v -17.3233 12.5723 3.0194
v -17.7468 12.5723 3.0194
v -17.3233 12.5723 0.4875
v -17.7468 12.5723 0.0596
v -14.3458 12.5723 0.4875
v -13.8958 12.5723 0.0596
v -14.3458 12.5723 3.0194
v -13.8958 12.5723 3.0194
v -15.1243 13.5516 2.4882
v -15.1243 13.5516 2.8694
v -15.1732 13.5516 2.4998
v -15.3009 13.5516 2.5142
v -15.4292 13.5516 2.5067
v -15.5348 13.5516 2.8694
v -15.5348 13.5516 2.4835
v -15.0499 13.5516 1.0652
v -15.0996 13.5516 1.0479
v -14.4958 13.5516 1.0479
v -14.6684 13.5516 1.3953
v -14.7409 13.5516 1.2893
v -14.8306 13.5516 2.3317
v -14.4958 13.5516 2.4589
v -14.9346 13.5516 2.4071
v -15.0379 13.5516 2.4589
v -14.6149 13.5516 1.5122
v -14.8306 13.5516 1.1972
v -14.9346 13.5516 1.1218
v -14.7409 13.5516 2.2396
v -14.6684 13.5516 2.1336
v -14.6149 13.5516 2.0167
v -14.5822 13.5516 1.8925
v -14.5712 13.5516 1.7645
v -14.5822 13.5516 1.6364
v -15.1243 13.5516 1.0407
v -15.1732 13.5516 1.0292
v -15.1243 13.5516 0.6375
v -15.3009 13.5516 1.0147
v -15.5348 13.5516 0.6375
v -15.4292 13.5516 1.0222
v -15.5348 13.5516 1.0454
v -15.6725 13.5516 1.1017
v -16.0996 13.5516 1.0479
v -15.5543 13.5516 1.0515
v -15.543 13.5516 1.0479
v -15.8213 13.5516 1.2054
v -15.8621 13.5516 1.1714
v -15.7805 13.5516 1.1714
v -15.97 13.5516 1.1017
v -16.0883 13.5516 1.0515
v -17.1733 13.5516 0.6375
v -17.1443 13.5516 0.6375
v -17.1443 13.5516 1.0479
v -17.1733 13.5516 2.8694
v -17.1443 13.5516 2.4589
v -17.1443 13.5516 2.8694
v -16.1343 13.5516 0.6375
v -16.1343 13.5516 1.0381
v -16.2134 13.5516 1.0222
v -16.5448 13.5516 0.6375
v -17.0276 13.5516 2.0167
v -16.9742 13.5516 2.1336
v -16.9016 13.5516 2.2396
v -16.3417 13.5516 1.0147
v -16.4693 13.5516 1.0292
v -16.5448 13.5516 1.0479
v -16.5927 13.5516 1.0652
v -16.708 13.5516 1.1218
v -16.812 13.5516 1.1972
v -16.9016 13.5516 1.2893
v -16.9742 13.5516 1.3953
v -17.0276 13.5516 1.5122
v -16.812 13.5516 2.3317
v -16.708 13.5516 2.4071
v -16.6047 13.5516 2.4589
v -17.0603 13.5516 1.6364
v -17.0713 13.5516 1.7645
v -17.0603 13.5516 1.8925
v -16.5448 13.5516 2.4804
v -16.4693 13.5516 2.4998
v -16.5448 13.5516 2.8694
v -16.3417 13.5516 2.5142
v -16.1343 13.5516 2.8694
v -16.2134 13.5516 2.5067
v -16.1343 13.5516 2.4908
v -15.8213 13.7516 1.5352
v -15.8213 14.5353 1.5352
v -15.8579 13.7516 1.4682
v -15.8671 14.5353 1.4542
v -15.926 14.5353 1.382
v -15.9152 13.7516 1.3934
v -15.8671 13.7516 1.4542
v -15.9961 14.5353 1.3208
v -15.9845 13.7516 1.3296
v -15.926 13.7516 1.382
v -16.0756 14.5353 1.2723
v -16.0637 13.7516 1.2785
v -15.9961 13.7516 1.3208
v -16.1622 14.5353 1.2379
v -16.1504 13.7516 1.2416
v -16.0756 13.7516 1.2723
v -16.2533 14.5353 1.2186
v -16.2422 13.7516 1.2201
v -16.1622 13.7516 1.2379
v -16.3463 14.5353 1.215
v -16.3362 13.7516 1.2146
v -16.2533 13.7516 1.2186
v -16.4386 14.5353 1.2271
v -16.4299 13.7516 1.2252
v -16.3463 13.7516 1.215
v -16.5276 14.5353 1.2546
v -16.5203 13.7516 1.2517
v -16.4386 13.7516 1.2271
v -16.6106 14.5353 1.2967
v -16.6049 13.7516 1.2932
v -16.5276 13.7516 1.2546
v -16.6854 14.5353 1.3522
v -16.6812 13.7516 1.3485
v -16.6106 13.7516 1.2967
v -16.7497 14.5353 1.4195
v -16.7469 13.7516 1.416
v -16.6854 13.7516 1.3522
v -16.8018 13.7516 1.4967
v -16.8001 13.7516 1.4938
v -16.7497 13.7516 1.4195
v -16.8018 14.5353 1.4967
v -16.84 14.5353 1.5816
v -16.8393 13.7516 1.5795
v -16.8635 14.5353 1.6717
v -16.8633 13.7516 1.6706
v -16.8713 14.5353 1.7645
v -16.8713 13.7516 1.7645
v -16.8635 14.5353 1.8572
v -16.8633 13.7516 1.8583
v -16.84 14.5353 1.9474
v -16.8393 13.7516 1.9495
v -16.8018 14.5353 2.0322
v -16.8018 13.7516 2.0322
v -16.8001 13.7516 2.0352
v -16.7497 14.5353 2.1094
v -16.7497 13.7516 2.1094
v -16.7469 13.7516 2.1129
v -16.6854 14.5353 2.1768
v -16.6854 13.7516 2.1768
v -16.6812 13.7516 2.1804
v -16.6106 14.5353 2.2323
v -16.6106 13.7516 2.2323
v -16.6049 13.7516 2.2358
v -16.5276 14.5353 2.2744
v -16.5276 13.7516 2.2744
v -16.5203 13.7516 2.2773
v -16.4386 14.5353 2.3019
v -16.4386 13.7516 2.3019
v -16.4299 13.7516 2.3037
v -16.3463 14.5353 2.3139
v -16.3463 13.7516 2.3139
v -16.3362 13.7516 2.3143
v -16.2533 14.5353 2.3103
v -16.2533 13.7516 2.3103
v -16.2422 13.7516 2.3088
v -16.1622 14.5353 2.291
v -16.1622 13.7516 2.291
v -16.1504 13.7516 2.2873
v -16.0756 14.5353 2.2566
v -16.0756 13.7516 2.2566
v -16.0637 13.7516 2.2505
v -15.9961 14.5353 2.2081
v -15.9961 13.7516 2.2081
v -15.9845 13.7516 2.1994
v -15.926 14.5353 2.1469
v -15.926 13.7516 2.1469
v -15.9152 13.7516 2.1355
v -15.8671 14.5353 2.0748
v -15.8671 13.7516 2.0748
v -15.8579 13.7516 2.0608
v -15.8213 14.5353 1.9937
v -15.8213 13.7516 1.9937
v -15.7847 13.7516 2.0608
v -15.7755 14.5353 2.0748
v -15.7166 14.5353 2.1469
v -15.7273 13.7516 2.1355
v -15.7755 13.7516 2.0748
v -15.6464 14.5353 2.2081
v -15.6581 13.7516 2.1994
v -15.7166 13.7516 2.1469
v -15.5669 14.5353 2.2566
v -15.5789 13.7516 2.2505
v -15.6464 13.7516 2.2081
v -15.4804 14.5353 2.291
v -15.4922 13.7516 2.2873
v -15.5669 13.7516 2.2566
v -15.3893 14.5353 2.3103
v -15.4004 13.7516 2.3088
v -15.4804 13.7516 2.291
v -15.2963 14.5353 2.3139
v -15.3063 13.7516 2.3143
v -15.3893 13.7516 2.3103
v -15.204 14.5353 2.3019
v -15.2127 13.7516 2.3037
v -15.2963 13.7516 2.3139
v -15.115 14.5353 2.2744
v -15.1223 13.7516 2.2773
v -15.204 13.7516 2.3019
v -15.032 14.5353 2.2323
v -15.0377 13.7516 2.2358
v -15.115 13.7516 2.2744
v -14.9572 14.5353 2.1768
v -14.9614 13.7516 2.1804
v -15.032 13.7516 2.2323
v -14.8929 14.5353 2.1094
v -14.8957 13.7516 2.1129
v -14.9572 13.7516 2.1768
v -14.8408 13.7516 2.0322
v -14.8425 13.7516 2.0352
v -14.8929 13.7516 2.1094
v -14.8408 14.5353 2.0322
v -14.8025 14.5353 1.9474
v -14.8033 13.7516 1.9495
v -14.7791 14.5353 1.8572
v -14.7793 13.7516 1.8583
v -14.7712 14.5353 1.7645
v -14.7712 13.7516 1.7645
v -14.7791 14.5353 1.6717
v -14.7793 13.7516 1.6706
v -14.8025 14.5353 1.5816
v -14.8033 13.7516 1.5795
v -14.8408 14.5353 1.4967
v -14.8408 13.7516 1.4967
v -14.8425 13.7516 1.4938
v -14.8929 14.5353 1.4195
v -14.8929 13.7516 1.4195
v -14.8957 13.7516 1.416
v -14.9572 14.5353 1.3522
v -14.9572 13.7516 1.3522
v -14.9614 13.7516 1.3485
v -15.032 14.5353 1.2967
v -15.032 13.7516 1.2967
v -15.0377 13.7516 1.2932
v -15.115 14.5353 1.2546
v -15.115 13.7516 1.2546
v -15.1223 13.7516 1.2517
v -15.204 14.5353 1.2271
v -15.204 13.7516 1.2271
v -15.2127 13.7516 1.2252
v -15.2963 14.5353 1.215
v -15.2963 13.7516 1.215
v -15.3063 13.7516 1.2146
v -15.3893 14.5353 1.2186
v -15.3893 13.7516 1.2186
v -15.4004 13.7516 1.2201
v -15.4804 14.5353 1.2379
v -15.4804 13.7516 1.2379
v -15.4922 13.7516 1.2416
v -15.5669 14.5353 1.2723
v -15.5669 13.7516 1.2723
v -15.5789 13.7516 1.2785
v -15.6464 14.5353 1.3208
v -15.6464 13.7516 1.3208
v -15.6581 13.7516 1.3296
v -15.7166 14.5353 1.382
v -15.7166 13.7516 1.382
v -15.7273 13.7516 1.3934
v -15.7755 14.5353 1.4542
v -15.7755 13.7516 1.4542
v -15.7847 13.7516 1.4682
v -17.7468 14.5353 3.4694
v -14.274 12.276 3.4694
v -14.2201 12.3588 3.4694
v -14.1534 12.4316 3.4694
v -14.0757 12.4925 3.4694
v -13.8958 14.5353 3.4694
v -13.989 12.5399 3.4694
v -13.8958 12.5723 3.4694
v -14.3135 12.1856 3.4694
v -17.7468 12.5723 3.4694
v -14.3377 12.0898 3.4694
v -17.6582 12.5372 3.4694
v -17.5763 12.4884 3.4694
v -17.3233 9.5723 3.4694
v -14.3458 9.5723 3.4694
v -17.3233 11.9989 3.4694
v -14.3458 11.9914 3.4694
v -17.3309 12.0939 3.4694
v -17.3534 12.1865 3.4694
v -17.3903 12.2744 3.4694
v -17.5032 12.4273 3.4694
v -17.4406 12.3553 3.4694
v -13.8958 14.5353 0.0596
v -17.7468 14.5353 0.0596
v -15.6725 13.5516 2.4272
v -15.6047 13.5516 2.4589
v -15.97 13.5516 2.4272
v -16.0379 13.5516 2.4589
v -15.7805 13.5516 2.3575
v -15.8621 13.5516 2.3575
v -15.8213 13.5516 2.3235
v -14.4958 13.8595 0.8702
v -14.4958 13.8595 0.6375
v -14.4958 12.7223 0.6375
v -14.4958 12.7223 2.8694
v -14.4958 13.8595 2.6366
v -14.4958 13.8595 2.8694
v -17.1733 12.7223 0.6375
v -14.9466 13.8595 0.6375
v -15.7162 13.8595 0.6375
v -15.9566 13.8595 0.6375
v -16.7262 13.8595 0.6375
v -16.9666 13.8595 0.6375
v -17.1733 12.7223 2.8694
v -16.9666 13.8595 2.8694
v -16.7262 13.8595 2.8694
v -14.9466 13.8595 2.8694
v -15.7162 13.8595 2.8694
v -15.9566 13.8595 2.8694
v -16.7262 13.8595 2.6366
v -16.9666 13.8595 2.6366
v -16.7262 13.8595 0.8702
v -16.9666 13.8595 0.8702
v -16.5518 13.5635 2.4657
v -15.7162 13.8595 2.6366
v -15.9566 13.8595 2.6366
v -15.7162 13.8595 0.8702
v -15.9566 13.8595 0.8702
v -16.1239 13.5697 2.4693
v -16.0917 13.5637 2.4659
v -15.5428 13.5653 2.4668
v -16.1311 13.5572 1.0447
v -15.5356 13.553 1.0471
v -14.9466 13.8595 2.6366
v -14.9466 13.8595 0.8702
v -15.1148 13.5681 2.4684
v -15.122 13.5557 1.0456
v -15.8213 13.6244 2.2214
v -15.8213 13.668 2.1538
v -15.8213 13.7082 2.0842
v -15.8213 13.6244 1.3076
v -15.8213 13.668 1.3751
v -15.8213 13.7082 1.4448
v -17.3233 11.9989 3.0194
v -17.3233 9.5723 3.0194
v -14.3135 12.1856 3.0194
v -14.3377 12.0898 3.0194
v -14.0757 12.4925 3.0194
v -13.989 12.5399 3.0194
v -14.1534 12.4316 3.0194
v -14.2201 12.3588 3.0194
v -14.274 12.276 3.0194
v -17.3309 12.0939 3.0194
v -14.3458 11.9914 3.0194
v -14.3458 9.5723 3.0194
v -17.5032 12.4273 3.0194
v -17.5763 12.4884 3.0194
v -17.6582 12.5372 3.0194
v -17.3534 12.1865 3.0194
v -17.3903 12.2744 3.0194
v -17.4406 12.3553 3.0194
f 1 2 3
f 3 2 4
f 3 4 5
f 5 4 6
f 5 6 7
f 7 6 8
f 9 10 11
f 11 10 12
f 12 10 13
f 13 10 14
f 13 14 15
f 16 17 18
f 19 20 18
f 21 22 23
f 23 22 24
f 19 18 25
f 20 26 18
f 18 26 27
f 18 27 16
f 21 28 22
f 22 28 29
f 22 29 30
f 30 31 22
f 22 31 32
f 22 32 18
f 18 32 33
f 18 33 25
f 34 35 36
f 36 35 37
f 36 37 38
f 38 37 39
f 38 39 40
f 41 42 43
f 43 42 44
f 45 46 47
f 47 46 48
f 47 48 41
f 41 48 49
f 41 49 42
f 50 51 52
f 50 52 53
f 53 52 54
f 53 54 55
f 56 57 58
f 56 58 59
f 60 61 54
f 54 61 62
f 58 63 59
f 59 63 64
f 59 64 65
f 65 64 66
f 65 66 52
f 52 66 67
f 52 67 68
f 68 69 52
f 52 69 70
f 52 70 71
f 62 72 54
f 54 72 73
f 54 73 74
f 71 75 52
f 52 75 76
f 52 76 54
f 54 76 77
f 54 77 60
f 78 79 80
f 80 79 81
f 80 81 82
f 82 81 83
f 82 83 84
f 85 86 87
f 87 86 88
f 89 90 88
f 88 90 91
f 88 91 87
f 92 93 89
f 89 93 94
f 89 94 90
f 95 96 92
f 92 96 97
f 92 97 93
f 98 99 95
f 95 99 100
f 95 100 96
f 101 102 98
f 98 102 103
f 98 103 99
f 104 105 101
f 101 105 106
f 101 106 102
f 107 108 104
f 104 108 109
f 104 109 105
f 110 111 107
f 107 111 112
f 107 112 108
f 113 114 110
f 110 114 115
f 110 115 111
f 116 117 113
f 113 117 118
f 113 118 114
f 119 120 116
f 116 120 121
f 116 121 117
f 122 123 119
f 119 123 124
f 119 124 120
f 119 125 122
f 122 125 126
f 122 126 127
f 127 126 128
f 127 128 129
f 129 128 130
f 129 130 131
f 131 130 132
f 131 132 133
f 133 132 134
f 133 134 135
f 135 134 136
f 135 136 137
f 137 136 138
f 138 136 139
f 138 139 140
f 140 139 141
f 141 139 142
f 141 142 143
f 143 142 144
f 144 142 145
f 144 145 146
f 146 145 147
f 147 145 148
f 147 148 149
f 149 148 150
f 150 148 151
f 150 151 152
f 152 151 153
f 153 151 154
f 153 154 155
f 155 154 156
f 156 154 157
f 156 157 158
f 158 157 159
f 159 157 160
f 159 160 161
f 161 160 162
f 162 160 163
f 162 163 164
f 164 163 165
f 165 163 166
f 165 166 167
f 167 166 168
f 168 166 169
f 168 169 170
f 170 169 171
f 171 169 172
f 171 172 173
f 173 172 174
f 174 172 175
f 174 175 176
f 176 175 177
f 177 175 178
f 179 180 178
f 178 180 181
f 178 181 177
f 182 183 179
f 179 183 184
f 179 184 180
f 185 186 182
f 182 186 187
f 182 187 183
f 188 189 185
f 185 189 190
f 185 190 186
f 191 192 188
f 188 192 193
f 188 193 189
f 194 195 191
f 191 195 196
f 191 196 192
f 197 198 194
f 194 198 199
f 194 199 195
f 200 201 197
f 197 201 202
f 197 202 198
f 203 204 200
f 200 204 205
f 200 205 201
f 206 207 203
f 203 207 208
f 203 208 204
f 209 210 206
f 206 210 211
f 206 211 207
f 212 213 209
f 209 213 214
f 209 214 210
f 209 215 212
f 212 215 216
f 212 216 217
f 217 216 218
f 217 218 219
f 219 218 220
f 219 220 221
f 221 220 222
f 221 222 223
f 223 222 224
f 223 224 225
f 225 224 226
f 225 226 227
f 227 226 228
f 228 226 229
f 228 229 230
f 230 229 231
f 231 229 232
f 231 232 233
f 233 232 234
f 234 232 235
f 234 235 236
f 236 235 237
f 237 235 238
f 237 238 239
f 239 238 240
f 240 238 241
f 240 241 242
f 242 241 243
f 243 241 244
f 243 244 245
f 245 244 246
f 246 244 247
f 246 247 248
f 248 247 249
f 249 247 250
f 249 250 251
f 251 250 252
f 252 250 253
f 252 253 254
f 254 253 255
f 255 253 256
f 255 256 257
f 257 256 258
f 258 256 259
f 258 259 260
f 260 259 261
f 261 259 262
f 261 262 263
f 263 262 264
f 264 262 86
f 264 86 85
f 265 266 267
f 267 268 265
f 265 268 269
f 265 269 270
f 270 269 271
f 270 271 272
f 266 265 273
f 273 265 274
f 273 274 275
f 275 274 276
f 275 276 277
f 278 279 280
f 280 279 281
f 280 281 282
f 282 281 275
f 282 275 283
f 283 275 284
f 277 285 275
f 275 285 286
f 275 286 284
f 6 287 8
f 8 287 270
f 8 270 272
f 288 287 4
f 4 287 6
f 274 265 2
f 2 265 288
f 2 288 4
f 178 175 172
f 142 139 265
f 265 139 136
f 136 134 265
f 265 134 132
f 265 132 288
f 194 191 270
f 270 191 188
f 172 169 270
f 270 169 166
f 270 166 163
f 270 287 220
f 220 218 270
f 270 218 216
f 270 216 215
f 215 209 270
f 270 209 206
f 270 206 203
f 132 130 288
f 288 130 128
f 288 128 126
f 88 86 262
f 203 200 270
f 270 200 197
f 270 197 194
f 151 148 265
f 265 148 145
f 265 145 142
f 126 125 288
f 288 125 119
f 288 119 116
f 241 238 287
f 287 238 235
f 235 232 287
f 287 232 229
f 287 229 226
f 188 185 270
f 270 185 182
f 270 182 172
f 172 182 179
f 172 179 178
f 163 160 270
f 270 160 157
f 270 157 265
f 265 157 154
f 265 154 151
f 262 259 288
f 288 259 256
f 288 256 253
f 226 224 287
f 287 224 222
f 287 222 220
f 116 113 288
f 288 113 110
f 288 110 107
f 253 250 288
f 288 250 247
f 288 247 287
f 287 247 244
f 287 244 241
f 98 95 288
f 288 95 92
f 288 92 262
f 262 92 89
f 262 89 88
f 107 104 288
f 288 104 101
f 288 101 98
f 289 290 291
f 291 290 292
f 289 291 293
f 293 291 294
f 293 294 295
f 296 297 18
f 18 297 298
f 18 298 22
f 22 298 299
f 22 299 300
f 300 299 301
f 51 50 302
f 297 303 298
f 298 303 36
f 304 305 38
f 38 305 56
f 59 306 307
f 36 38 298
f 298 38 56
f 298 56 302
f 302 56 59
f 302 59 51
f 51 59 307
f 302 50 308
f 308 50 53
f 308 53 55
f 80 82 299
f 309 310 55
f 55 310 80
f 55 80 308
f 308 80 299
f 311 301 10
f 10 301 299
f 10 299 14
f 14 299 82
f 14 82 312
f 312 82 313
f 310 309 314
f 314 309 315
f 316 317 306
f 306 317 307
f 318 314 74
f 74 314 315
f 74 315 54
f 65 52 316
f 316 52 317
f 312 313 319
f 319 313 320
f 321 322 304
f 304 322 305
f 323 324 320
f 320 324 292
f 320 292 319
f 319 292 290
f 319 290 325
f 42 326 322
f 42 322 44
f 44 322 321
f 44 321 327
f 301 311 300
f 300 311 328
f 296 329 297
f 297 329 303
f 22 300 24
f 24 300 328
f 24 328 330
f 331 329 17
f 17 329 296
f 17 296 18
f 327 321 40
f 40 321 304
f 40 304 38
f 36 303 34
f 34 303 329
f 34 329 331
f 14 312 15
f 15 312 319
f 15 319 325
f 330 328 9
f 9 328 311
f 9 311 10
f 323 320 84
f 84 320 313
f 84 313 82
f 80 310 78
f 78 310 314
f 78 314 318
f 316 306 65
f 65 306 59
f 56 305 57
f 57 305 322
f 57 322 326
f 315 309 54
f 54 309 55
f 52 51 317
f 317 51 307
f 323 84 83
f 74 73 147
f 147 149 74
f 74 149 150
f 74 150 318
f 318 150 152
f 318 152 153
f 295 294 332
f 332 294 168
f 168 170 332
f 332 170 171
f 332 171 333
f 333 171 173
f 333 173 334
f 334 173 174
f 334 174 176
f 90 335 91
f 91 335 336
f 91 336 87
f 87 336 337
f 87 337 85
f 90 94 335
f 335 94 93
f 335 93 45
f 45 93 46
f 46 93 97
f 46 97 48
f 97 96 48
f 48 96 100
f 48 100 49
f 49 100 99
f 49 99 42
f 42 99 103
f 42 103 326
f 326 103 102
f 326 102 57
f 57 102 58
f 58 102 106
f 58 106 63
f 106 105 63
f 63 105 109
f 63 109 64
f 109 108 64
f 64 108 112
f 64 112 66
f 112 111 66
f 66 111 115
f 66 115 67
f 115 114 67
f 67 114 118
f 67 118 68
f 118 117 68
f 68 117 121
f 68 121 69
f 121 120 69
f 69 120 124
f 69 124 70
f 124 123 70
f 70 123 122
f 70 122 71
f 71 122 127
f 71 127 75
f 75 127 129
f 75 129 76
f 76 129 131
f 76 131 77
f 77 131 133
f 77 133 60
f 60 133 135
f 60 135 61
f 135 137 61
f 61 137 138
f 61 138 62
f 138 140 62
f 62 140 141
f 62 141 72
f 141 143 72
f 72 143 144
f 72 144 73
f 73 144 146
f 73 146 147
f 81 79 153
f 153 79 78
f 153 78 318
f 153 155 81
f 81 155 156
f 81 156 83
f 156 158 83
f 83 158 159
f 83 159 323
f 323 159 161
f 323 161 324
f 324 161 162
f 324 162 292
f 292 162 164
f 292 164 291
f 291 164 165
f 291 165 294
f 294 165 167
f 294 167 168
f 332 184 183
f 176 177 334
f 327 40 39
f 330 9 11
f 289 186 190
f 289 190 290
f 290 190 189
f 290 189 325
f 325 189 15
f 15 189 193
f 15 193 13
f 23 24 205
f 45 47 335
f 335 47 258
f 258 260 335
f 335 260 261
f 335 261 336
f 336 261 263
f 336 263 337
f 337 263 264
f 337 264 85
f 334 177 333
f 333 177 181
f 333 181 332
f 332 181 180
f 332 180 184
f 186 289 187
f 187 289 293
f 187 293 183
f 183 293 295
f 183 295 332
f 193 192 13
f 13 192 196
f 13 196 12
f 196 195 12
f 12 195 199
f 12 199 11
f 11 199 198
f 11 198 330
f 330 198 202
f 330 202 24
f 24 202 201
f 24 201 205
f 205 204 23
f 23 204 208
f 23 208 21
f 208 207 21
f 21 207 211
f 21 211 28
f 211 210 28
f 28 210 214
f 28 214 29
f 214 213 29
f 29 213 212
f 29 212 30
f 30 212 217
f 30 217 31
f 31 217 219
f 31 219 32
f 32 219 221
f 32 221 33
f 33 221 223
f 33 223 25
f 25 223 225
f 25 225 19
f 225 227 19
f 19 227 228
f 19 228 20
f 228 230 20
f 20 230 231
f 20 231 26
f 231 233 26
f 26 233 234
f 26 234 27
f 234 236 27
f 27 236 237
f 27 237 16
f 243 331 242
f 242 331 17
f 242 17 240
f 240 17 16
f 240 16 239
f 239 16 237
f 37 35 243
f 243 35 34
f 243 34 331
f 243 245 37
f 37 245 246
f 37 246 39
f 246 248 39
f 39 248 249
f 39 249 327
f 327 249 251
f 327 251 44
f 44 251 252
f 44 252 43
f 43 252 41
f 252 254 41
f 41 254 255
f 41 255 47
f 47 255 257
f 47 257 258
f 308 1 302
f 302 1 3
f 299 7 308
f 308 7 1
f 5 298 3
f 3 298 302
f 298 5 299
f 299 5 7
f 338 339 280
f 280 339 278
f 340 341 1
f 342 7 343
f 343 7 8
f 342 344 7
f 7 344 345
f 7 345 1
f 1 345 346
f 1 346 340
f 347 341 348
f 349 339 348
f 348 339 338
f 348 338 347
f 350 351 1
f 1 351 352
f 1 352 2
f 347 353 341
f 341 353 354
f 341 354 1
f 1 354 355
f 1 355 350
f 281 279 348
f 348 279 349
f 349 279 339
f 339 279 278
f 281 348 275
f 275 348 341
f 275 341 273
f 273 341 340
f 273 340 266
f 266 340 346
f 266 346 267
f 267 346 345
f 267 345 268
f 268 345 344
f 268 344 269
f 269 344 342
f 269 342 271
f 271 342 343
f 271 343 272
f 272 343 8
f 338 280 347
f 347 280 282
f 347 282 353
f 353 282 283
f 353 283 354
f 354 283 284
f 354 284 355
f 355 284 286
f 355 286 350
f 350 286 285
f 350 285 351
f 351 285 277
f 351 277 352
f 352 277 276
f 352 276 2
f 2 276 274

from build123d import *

# Parameters (mm, degrees)
BOSS_EXTRUDE1_DEPTH      = 0.7
BOSS_EXTRUDE1_DEPTH_BACK = 1.263
SKETCH1_W                = 3.850998
SKETCH1_H                = 3.4098
CAVITY1_START            = 0.637466597
CAVITY1_OUTLINE_W        = 2.67750798
CAVITY1_OUTLINE_H        = 0.979282
CAVITY1_DEPTH            = 2.231898
CAVITY1_2_DEPTH          = 0.410464
CAVITY1_START_2          = 2.458900597
CAVITY1_3_DEPTH          = 0.410464
CAVITY1_START_3          = -17.14430724
CAVITY1_4_DEPTH          = 2.648519043
CHAMFER1_SIZE            = 0.2
CHAMFER2_SIZE            = 0.15
SKETCH2_W                = 2.97750798
SKETCH2_H                = 0.45
BOSS_EXTRUDE2_DEPTH      = 3
FILLET1_R                = 0.6


with BuildPart() as part:
    # Sketch1 → Boss-Extrude1 (new, two sides: drawn at the far end of the back side and taken through both)
    with BuildSketch(Plane(origin=(0, 13.835346538, 0), x_dir=(1, 0, 0), z_dir=(0, 1, 0)).offset(-BOSS_EXTRUDE1_DEPTH_BACK)):
        with Locations((-15.821287197, -1.764464597)):
            Rectangle(SKETCH1_W, SKETCH1_H)
        with BuildLine():
            ThreePointArc((-15.821287197, -1.53533363), (-16.871286197, -1.764464597), (-15.821287197, -1.993595564))
            ThreePointArc((-15.821287197, -1.993595564), (-14.771288197, -1.764464597), (-15.821287197, -1.53533363))
        make_face(mode=Mode.SUBTRACT)
    extrude(amount=BOSS_EXTRUDE1_DEPTH + BOSS_EXTRUDE1_DEPTH_BACK)

    # Cavity1: read off the stored shape, not the designer's step
    # Cavity1 outline → Cavity1 (cut)
    with BuildSketch(Plane.XY.offset(CAVITY1_START)):
        with Locations((-15.834542187, 13.061987538)):
            Rectangle(CAVITY1_OUTLINE_W, CAVITY1_OUTLINE_H)
    extrude(amount=CAVITY1_DEPTH, mode=Mode.SUBTRACT)

    # Cavity1 2 outline → Cavity1 2 (cut)
    with BuildSketch(Plane.XY.offset(CAVITY1_START)):
        Polygon((-16.966571114, 13.859476538), (-17.14430724, 13.551628538), (-16.54477326, 13.551628538), (-16.726193134, 13.859476538), align=None)
        Polygon((-15.956573134, 13.859476538), (-16.13430926, 13.551628538), (-15.53477528, 13.551628538), (-15.716195154, 13.859476538), align=None)
        Polygon((-15.12431128, 13.551628538), (-14.495788197, 13.551628538), (-14.495788197, 13.859476538), (-14.946575154, 13.859476538), align=None)
    extrude(amount=CAVITY1_2_DEPTH, mode=Mode.SUBTRACT)

    # Cavity1 3 outline → Cavity1 3 (cut)
    with BuildSketch(Plane.XY.offset(CAVITY1_START_2)):
        Polygon((-16.966571114, 13.859476538), (-17.14430724, 13.551628538), (-16.54477326, 13.551628538), (-16.726193134, 13.859476538), align=None)
        Polygon((-15.956573134, 13.859476538), (-16.13430926, 13.551628538), (-15.53477528, 13.551628538), (-15.716195154, 13.859476538), align=None)
        Polygon((-15.12431128, 13.551628538), (-14.495788197, 13.551628538), (-14.495788197, 13.859476538), (-14.946575154, 13.859476538), align=None)
    extrude(amount=CAVITY1_3_DEPTH, mode=Mode.SUBTRACT)

    # Cavity1 4 outline → Cavity1 4 (add)
    with BuildSketch(Plane.YZ.offset(CAVITY1_START_3)):
        Polygon((13.859476538, 2.458900597), (13.859476538, 2.636636723), (13.551628538, 2.458900597), align=None)
        Polygon((13.859476538, 1.047930597), (13.551628538, 1.047930597), (13.859476538, 0.870194471), align=None)
    extrude(amount=CAVITY1_4_DEPTH)

    # Chamfer1
    # the kernel refuses this chamfer: 0.2 mm, written as the material it takes off along each edge
    with BuildSketch(Plane(origin=(-15.321288197, 13.551628538, 1.764464597), x_dir=(-0.9999950652018582, 0, -0.0031415874858801893), z_dir=(-0.0031415874858801893, 0, 0.9999950652018582))) as chamfer1_piece_1:
        Polygon((0.55, -CHAMFER1_SIZE), (0.55 + CHAMFER1_SIZE, 0), (0.55, 0), align=None)
    revolve(axis=Axis((-15.321288197, 13.551628538, 1.764464597), (0, -1, 0)), revolution_arc=359.64, mode=Mode.SUBTRACT)
    with BuildSketch(Plane(origin=(-16.321286197, 13.551628538, 1.764464597), x_dir=(0.9999950652018582, 0, 0.003141587485879382), z_dir=(0.003141587485879382, 0, -0.9999950652018582))) as chamfer1_piece_2:
        Polygon((0.55, -CHAMFER1_SIZE), (0.55 + CHAMFER1_SIZE, 0), (0.55, 0), align=None)
    revolve(axis=Axis((-16.321286197, 13.551628538, 1.764464597), (0, -1, 0)), revolution_arc=359.64, mode=Mode.SUBTRACT)

    # Chamfer2
    chamfer2_edges = [part.edges().sort_by_distance(p)[0] for p in [
        (-15.834542187, 12.572346538, 2.869364597),
        (-17.173296177, 12.572346538, 1.753415597),
        (-15.834542187, 12.572346538, 0.637466597),
        (-14.495788197, 12.572346538, 1.753415597),
    ]]
    chamfer(chamfer2_edges, length=CHAMFER2_SIZE)

    # Sketch2 → Boss-Extrude2 (add)
    with BuildSketch(Plane.XZ.offset(-12.572346538)):
        with Locations((-15.834542187, 3.244364597)):
            Rectangle(SKETCH2_W, SKETCH2_H)
    extrude(amount=BOSS_EXTRUDE2_DEPTH)

    # Fillet1
    # the kernel refuses this fillet: 0.6 mm, written as the material it adds along each edge
    with BuildSketch(Plane(origin=(-14.345788197, 12.572346538, 3.019364597), x_dir=(1, 0, 0), z_dir=(0, 0, 1))) as fillet1_piece_1:
        with BuildLine():
            CenterArc((0.6, -0.580947502), FILLET1_R, 104.477512186, 75.522487814)
            Line((0, -0.580947502), (0, 0))
            Line((0, 0), (0.45, 0))
        make_face()
    extrude(amount=0.45)
    with BuildSketch(Plane(origin=(-17.323296177, 12.572346538, 3.469364597), x_dir=(-1, 0, 0), z_dir=(0, 0, -1))) as fillet1_piece_2:
        with BuildLine():
            CenterArc((0.6, -0.573449411), FILLET1_R, 107.108570934, 72.891429066)
            Line((0, -0.573449411), (0, 0))
            Line((0, 0), (0.42349002, 0))
        make_face()
    extrude(amount=0.45)


solid = part.part
